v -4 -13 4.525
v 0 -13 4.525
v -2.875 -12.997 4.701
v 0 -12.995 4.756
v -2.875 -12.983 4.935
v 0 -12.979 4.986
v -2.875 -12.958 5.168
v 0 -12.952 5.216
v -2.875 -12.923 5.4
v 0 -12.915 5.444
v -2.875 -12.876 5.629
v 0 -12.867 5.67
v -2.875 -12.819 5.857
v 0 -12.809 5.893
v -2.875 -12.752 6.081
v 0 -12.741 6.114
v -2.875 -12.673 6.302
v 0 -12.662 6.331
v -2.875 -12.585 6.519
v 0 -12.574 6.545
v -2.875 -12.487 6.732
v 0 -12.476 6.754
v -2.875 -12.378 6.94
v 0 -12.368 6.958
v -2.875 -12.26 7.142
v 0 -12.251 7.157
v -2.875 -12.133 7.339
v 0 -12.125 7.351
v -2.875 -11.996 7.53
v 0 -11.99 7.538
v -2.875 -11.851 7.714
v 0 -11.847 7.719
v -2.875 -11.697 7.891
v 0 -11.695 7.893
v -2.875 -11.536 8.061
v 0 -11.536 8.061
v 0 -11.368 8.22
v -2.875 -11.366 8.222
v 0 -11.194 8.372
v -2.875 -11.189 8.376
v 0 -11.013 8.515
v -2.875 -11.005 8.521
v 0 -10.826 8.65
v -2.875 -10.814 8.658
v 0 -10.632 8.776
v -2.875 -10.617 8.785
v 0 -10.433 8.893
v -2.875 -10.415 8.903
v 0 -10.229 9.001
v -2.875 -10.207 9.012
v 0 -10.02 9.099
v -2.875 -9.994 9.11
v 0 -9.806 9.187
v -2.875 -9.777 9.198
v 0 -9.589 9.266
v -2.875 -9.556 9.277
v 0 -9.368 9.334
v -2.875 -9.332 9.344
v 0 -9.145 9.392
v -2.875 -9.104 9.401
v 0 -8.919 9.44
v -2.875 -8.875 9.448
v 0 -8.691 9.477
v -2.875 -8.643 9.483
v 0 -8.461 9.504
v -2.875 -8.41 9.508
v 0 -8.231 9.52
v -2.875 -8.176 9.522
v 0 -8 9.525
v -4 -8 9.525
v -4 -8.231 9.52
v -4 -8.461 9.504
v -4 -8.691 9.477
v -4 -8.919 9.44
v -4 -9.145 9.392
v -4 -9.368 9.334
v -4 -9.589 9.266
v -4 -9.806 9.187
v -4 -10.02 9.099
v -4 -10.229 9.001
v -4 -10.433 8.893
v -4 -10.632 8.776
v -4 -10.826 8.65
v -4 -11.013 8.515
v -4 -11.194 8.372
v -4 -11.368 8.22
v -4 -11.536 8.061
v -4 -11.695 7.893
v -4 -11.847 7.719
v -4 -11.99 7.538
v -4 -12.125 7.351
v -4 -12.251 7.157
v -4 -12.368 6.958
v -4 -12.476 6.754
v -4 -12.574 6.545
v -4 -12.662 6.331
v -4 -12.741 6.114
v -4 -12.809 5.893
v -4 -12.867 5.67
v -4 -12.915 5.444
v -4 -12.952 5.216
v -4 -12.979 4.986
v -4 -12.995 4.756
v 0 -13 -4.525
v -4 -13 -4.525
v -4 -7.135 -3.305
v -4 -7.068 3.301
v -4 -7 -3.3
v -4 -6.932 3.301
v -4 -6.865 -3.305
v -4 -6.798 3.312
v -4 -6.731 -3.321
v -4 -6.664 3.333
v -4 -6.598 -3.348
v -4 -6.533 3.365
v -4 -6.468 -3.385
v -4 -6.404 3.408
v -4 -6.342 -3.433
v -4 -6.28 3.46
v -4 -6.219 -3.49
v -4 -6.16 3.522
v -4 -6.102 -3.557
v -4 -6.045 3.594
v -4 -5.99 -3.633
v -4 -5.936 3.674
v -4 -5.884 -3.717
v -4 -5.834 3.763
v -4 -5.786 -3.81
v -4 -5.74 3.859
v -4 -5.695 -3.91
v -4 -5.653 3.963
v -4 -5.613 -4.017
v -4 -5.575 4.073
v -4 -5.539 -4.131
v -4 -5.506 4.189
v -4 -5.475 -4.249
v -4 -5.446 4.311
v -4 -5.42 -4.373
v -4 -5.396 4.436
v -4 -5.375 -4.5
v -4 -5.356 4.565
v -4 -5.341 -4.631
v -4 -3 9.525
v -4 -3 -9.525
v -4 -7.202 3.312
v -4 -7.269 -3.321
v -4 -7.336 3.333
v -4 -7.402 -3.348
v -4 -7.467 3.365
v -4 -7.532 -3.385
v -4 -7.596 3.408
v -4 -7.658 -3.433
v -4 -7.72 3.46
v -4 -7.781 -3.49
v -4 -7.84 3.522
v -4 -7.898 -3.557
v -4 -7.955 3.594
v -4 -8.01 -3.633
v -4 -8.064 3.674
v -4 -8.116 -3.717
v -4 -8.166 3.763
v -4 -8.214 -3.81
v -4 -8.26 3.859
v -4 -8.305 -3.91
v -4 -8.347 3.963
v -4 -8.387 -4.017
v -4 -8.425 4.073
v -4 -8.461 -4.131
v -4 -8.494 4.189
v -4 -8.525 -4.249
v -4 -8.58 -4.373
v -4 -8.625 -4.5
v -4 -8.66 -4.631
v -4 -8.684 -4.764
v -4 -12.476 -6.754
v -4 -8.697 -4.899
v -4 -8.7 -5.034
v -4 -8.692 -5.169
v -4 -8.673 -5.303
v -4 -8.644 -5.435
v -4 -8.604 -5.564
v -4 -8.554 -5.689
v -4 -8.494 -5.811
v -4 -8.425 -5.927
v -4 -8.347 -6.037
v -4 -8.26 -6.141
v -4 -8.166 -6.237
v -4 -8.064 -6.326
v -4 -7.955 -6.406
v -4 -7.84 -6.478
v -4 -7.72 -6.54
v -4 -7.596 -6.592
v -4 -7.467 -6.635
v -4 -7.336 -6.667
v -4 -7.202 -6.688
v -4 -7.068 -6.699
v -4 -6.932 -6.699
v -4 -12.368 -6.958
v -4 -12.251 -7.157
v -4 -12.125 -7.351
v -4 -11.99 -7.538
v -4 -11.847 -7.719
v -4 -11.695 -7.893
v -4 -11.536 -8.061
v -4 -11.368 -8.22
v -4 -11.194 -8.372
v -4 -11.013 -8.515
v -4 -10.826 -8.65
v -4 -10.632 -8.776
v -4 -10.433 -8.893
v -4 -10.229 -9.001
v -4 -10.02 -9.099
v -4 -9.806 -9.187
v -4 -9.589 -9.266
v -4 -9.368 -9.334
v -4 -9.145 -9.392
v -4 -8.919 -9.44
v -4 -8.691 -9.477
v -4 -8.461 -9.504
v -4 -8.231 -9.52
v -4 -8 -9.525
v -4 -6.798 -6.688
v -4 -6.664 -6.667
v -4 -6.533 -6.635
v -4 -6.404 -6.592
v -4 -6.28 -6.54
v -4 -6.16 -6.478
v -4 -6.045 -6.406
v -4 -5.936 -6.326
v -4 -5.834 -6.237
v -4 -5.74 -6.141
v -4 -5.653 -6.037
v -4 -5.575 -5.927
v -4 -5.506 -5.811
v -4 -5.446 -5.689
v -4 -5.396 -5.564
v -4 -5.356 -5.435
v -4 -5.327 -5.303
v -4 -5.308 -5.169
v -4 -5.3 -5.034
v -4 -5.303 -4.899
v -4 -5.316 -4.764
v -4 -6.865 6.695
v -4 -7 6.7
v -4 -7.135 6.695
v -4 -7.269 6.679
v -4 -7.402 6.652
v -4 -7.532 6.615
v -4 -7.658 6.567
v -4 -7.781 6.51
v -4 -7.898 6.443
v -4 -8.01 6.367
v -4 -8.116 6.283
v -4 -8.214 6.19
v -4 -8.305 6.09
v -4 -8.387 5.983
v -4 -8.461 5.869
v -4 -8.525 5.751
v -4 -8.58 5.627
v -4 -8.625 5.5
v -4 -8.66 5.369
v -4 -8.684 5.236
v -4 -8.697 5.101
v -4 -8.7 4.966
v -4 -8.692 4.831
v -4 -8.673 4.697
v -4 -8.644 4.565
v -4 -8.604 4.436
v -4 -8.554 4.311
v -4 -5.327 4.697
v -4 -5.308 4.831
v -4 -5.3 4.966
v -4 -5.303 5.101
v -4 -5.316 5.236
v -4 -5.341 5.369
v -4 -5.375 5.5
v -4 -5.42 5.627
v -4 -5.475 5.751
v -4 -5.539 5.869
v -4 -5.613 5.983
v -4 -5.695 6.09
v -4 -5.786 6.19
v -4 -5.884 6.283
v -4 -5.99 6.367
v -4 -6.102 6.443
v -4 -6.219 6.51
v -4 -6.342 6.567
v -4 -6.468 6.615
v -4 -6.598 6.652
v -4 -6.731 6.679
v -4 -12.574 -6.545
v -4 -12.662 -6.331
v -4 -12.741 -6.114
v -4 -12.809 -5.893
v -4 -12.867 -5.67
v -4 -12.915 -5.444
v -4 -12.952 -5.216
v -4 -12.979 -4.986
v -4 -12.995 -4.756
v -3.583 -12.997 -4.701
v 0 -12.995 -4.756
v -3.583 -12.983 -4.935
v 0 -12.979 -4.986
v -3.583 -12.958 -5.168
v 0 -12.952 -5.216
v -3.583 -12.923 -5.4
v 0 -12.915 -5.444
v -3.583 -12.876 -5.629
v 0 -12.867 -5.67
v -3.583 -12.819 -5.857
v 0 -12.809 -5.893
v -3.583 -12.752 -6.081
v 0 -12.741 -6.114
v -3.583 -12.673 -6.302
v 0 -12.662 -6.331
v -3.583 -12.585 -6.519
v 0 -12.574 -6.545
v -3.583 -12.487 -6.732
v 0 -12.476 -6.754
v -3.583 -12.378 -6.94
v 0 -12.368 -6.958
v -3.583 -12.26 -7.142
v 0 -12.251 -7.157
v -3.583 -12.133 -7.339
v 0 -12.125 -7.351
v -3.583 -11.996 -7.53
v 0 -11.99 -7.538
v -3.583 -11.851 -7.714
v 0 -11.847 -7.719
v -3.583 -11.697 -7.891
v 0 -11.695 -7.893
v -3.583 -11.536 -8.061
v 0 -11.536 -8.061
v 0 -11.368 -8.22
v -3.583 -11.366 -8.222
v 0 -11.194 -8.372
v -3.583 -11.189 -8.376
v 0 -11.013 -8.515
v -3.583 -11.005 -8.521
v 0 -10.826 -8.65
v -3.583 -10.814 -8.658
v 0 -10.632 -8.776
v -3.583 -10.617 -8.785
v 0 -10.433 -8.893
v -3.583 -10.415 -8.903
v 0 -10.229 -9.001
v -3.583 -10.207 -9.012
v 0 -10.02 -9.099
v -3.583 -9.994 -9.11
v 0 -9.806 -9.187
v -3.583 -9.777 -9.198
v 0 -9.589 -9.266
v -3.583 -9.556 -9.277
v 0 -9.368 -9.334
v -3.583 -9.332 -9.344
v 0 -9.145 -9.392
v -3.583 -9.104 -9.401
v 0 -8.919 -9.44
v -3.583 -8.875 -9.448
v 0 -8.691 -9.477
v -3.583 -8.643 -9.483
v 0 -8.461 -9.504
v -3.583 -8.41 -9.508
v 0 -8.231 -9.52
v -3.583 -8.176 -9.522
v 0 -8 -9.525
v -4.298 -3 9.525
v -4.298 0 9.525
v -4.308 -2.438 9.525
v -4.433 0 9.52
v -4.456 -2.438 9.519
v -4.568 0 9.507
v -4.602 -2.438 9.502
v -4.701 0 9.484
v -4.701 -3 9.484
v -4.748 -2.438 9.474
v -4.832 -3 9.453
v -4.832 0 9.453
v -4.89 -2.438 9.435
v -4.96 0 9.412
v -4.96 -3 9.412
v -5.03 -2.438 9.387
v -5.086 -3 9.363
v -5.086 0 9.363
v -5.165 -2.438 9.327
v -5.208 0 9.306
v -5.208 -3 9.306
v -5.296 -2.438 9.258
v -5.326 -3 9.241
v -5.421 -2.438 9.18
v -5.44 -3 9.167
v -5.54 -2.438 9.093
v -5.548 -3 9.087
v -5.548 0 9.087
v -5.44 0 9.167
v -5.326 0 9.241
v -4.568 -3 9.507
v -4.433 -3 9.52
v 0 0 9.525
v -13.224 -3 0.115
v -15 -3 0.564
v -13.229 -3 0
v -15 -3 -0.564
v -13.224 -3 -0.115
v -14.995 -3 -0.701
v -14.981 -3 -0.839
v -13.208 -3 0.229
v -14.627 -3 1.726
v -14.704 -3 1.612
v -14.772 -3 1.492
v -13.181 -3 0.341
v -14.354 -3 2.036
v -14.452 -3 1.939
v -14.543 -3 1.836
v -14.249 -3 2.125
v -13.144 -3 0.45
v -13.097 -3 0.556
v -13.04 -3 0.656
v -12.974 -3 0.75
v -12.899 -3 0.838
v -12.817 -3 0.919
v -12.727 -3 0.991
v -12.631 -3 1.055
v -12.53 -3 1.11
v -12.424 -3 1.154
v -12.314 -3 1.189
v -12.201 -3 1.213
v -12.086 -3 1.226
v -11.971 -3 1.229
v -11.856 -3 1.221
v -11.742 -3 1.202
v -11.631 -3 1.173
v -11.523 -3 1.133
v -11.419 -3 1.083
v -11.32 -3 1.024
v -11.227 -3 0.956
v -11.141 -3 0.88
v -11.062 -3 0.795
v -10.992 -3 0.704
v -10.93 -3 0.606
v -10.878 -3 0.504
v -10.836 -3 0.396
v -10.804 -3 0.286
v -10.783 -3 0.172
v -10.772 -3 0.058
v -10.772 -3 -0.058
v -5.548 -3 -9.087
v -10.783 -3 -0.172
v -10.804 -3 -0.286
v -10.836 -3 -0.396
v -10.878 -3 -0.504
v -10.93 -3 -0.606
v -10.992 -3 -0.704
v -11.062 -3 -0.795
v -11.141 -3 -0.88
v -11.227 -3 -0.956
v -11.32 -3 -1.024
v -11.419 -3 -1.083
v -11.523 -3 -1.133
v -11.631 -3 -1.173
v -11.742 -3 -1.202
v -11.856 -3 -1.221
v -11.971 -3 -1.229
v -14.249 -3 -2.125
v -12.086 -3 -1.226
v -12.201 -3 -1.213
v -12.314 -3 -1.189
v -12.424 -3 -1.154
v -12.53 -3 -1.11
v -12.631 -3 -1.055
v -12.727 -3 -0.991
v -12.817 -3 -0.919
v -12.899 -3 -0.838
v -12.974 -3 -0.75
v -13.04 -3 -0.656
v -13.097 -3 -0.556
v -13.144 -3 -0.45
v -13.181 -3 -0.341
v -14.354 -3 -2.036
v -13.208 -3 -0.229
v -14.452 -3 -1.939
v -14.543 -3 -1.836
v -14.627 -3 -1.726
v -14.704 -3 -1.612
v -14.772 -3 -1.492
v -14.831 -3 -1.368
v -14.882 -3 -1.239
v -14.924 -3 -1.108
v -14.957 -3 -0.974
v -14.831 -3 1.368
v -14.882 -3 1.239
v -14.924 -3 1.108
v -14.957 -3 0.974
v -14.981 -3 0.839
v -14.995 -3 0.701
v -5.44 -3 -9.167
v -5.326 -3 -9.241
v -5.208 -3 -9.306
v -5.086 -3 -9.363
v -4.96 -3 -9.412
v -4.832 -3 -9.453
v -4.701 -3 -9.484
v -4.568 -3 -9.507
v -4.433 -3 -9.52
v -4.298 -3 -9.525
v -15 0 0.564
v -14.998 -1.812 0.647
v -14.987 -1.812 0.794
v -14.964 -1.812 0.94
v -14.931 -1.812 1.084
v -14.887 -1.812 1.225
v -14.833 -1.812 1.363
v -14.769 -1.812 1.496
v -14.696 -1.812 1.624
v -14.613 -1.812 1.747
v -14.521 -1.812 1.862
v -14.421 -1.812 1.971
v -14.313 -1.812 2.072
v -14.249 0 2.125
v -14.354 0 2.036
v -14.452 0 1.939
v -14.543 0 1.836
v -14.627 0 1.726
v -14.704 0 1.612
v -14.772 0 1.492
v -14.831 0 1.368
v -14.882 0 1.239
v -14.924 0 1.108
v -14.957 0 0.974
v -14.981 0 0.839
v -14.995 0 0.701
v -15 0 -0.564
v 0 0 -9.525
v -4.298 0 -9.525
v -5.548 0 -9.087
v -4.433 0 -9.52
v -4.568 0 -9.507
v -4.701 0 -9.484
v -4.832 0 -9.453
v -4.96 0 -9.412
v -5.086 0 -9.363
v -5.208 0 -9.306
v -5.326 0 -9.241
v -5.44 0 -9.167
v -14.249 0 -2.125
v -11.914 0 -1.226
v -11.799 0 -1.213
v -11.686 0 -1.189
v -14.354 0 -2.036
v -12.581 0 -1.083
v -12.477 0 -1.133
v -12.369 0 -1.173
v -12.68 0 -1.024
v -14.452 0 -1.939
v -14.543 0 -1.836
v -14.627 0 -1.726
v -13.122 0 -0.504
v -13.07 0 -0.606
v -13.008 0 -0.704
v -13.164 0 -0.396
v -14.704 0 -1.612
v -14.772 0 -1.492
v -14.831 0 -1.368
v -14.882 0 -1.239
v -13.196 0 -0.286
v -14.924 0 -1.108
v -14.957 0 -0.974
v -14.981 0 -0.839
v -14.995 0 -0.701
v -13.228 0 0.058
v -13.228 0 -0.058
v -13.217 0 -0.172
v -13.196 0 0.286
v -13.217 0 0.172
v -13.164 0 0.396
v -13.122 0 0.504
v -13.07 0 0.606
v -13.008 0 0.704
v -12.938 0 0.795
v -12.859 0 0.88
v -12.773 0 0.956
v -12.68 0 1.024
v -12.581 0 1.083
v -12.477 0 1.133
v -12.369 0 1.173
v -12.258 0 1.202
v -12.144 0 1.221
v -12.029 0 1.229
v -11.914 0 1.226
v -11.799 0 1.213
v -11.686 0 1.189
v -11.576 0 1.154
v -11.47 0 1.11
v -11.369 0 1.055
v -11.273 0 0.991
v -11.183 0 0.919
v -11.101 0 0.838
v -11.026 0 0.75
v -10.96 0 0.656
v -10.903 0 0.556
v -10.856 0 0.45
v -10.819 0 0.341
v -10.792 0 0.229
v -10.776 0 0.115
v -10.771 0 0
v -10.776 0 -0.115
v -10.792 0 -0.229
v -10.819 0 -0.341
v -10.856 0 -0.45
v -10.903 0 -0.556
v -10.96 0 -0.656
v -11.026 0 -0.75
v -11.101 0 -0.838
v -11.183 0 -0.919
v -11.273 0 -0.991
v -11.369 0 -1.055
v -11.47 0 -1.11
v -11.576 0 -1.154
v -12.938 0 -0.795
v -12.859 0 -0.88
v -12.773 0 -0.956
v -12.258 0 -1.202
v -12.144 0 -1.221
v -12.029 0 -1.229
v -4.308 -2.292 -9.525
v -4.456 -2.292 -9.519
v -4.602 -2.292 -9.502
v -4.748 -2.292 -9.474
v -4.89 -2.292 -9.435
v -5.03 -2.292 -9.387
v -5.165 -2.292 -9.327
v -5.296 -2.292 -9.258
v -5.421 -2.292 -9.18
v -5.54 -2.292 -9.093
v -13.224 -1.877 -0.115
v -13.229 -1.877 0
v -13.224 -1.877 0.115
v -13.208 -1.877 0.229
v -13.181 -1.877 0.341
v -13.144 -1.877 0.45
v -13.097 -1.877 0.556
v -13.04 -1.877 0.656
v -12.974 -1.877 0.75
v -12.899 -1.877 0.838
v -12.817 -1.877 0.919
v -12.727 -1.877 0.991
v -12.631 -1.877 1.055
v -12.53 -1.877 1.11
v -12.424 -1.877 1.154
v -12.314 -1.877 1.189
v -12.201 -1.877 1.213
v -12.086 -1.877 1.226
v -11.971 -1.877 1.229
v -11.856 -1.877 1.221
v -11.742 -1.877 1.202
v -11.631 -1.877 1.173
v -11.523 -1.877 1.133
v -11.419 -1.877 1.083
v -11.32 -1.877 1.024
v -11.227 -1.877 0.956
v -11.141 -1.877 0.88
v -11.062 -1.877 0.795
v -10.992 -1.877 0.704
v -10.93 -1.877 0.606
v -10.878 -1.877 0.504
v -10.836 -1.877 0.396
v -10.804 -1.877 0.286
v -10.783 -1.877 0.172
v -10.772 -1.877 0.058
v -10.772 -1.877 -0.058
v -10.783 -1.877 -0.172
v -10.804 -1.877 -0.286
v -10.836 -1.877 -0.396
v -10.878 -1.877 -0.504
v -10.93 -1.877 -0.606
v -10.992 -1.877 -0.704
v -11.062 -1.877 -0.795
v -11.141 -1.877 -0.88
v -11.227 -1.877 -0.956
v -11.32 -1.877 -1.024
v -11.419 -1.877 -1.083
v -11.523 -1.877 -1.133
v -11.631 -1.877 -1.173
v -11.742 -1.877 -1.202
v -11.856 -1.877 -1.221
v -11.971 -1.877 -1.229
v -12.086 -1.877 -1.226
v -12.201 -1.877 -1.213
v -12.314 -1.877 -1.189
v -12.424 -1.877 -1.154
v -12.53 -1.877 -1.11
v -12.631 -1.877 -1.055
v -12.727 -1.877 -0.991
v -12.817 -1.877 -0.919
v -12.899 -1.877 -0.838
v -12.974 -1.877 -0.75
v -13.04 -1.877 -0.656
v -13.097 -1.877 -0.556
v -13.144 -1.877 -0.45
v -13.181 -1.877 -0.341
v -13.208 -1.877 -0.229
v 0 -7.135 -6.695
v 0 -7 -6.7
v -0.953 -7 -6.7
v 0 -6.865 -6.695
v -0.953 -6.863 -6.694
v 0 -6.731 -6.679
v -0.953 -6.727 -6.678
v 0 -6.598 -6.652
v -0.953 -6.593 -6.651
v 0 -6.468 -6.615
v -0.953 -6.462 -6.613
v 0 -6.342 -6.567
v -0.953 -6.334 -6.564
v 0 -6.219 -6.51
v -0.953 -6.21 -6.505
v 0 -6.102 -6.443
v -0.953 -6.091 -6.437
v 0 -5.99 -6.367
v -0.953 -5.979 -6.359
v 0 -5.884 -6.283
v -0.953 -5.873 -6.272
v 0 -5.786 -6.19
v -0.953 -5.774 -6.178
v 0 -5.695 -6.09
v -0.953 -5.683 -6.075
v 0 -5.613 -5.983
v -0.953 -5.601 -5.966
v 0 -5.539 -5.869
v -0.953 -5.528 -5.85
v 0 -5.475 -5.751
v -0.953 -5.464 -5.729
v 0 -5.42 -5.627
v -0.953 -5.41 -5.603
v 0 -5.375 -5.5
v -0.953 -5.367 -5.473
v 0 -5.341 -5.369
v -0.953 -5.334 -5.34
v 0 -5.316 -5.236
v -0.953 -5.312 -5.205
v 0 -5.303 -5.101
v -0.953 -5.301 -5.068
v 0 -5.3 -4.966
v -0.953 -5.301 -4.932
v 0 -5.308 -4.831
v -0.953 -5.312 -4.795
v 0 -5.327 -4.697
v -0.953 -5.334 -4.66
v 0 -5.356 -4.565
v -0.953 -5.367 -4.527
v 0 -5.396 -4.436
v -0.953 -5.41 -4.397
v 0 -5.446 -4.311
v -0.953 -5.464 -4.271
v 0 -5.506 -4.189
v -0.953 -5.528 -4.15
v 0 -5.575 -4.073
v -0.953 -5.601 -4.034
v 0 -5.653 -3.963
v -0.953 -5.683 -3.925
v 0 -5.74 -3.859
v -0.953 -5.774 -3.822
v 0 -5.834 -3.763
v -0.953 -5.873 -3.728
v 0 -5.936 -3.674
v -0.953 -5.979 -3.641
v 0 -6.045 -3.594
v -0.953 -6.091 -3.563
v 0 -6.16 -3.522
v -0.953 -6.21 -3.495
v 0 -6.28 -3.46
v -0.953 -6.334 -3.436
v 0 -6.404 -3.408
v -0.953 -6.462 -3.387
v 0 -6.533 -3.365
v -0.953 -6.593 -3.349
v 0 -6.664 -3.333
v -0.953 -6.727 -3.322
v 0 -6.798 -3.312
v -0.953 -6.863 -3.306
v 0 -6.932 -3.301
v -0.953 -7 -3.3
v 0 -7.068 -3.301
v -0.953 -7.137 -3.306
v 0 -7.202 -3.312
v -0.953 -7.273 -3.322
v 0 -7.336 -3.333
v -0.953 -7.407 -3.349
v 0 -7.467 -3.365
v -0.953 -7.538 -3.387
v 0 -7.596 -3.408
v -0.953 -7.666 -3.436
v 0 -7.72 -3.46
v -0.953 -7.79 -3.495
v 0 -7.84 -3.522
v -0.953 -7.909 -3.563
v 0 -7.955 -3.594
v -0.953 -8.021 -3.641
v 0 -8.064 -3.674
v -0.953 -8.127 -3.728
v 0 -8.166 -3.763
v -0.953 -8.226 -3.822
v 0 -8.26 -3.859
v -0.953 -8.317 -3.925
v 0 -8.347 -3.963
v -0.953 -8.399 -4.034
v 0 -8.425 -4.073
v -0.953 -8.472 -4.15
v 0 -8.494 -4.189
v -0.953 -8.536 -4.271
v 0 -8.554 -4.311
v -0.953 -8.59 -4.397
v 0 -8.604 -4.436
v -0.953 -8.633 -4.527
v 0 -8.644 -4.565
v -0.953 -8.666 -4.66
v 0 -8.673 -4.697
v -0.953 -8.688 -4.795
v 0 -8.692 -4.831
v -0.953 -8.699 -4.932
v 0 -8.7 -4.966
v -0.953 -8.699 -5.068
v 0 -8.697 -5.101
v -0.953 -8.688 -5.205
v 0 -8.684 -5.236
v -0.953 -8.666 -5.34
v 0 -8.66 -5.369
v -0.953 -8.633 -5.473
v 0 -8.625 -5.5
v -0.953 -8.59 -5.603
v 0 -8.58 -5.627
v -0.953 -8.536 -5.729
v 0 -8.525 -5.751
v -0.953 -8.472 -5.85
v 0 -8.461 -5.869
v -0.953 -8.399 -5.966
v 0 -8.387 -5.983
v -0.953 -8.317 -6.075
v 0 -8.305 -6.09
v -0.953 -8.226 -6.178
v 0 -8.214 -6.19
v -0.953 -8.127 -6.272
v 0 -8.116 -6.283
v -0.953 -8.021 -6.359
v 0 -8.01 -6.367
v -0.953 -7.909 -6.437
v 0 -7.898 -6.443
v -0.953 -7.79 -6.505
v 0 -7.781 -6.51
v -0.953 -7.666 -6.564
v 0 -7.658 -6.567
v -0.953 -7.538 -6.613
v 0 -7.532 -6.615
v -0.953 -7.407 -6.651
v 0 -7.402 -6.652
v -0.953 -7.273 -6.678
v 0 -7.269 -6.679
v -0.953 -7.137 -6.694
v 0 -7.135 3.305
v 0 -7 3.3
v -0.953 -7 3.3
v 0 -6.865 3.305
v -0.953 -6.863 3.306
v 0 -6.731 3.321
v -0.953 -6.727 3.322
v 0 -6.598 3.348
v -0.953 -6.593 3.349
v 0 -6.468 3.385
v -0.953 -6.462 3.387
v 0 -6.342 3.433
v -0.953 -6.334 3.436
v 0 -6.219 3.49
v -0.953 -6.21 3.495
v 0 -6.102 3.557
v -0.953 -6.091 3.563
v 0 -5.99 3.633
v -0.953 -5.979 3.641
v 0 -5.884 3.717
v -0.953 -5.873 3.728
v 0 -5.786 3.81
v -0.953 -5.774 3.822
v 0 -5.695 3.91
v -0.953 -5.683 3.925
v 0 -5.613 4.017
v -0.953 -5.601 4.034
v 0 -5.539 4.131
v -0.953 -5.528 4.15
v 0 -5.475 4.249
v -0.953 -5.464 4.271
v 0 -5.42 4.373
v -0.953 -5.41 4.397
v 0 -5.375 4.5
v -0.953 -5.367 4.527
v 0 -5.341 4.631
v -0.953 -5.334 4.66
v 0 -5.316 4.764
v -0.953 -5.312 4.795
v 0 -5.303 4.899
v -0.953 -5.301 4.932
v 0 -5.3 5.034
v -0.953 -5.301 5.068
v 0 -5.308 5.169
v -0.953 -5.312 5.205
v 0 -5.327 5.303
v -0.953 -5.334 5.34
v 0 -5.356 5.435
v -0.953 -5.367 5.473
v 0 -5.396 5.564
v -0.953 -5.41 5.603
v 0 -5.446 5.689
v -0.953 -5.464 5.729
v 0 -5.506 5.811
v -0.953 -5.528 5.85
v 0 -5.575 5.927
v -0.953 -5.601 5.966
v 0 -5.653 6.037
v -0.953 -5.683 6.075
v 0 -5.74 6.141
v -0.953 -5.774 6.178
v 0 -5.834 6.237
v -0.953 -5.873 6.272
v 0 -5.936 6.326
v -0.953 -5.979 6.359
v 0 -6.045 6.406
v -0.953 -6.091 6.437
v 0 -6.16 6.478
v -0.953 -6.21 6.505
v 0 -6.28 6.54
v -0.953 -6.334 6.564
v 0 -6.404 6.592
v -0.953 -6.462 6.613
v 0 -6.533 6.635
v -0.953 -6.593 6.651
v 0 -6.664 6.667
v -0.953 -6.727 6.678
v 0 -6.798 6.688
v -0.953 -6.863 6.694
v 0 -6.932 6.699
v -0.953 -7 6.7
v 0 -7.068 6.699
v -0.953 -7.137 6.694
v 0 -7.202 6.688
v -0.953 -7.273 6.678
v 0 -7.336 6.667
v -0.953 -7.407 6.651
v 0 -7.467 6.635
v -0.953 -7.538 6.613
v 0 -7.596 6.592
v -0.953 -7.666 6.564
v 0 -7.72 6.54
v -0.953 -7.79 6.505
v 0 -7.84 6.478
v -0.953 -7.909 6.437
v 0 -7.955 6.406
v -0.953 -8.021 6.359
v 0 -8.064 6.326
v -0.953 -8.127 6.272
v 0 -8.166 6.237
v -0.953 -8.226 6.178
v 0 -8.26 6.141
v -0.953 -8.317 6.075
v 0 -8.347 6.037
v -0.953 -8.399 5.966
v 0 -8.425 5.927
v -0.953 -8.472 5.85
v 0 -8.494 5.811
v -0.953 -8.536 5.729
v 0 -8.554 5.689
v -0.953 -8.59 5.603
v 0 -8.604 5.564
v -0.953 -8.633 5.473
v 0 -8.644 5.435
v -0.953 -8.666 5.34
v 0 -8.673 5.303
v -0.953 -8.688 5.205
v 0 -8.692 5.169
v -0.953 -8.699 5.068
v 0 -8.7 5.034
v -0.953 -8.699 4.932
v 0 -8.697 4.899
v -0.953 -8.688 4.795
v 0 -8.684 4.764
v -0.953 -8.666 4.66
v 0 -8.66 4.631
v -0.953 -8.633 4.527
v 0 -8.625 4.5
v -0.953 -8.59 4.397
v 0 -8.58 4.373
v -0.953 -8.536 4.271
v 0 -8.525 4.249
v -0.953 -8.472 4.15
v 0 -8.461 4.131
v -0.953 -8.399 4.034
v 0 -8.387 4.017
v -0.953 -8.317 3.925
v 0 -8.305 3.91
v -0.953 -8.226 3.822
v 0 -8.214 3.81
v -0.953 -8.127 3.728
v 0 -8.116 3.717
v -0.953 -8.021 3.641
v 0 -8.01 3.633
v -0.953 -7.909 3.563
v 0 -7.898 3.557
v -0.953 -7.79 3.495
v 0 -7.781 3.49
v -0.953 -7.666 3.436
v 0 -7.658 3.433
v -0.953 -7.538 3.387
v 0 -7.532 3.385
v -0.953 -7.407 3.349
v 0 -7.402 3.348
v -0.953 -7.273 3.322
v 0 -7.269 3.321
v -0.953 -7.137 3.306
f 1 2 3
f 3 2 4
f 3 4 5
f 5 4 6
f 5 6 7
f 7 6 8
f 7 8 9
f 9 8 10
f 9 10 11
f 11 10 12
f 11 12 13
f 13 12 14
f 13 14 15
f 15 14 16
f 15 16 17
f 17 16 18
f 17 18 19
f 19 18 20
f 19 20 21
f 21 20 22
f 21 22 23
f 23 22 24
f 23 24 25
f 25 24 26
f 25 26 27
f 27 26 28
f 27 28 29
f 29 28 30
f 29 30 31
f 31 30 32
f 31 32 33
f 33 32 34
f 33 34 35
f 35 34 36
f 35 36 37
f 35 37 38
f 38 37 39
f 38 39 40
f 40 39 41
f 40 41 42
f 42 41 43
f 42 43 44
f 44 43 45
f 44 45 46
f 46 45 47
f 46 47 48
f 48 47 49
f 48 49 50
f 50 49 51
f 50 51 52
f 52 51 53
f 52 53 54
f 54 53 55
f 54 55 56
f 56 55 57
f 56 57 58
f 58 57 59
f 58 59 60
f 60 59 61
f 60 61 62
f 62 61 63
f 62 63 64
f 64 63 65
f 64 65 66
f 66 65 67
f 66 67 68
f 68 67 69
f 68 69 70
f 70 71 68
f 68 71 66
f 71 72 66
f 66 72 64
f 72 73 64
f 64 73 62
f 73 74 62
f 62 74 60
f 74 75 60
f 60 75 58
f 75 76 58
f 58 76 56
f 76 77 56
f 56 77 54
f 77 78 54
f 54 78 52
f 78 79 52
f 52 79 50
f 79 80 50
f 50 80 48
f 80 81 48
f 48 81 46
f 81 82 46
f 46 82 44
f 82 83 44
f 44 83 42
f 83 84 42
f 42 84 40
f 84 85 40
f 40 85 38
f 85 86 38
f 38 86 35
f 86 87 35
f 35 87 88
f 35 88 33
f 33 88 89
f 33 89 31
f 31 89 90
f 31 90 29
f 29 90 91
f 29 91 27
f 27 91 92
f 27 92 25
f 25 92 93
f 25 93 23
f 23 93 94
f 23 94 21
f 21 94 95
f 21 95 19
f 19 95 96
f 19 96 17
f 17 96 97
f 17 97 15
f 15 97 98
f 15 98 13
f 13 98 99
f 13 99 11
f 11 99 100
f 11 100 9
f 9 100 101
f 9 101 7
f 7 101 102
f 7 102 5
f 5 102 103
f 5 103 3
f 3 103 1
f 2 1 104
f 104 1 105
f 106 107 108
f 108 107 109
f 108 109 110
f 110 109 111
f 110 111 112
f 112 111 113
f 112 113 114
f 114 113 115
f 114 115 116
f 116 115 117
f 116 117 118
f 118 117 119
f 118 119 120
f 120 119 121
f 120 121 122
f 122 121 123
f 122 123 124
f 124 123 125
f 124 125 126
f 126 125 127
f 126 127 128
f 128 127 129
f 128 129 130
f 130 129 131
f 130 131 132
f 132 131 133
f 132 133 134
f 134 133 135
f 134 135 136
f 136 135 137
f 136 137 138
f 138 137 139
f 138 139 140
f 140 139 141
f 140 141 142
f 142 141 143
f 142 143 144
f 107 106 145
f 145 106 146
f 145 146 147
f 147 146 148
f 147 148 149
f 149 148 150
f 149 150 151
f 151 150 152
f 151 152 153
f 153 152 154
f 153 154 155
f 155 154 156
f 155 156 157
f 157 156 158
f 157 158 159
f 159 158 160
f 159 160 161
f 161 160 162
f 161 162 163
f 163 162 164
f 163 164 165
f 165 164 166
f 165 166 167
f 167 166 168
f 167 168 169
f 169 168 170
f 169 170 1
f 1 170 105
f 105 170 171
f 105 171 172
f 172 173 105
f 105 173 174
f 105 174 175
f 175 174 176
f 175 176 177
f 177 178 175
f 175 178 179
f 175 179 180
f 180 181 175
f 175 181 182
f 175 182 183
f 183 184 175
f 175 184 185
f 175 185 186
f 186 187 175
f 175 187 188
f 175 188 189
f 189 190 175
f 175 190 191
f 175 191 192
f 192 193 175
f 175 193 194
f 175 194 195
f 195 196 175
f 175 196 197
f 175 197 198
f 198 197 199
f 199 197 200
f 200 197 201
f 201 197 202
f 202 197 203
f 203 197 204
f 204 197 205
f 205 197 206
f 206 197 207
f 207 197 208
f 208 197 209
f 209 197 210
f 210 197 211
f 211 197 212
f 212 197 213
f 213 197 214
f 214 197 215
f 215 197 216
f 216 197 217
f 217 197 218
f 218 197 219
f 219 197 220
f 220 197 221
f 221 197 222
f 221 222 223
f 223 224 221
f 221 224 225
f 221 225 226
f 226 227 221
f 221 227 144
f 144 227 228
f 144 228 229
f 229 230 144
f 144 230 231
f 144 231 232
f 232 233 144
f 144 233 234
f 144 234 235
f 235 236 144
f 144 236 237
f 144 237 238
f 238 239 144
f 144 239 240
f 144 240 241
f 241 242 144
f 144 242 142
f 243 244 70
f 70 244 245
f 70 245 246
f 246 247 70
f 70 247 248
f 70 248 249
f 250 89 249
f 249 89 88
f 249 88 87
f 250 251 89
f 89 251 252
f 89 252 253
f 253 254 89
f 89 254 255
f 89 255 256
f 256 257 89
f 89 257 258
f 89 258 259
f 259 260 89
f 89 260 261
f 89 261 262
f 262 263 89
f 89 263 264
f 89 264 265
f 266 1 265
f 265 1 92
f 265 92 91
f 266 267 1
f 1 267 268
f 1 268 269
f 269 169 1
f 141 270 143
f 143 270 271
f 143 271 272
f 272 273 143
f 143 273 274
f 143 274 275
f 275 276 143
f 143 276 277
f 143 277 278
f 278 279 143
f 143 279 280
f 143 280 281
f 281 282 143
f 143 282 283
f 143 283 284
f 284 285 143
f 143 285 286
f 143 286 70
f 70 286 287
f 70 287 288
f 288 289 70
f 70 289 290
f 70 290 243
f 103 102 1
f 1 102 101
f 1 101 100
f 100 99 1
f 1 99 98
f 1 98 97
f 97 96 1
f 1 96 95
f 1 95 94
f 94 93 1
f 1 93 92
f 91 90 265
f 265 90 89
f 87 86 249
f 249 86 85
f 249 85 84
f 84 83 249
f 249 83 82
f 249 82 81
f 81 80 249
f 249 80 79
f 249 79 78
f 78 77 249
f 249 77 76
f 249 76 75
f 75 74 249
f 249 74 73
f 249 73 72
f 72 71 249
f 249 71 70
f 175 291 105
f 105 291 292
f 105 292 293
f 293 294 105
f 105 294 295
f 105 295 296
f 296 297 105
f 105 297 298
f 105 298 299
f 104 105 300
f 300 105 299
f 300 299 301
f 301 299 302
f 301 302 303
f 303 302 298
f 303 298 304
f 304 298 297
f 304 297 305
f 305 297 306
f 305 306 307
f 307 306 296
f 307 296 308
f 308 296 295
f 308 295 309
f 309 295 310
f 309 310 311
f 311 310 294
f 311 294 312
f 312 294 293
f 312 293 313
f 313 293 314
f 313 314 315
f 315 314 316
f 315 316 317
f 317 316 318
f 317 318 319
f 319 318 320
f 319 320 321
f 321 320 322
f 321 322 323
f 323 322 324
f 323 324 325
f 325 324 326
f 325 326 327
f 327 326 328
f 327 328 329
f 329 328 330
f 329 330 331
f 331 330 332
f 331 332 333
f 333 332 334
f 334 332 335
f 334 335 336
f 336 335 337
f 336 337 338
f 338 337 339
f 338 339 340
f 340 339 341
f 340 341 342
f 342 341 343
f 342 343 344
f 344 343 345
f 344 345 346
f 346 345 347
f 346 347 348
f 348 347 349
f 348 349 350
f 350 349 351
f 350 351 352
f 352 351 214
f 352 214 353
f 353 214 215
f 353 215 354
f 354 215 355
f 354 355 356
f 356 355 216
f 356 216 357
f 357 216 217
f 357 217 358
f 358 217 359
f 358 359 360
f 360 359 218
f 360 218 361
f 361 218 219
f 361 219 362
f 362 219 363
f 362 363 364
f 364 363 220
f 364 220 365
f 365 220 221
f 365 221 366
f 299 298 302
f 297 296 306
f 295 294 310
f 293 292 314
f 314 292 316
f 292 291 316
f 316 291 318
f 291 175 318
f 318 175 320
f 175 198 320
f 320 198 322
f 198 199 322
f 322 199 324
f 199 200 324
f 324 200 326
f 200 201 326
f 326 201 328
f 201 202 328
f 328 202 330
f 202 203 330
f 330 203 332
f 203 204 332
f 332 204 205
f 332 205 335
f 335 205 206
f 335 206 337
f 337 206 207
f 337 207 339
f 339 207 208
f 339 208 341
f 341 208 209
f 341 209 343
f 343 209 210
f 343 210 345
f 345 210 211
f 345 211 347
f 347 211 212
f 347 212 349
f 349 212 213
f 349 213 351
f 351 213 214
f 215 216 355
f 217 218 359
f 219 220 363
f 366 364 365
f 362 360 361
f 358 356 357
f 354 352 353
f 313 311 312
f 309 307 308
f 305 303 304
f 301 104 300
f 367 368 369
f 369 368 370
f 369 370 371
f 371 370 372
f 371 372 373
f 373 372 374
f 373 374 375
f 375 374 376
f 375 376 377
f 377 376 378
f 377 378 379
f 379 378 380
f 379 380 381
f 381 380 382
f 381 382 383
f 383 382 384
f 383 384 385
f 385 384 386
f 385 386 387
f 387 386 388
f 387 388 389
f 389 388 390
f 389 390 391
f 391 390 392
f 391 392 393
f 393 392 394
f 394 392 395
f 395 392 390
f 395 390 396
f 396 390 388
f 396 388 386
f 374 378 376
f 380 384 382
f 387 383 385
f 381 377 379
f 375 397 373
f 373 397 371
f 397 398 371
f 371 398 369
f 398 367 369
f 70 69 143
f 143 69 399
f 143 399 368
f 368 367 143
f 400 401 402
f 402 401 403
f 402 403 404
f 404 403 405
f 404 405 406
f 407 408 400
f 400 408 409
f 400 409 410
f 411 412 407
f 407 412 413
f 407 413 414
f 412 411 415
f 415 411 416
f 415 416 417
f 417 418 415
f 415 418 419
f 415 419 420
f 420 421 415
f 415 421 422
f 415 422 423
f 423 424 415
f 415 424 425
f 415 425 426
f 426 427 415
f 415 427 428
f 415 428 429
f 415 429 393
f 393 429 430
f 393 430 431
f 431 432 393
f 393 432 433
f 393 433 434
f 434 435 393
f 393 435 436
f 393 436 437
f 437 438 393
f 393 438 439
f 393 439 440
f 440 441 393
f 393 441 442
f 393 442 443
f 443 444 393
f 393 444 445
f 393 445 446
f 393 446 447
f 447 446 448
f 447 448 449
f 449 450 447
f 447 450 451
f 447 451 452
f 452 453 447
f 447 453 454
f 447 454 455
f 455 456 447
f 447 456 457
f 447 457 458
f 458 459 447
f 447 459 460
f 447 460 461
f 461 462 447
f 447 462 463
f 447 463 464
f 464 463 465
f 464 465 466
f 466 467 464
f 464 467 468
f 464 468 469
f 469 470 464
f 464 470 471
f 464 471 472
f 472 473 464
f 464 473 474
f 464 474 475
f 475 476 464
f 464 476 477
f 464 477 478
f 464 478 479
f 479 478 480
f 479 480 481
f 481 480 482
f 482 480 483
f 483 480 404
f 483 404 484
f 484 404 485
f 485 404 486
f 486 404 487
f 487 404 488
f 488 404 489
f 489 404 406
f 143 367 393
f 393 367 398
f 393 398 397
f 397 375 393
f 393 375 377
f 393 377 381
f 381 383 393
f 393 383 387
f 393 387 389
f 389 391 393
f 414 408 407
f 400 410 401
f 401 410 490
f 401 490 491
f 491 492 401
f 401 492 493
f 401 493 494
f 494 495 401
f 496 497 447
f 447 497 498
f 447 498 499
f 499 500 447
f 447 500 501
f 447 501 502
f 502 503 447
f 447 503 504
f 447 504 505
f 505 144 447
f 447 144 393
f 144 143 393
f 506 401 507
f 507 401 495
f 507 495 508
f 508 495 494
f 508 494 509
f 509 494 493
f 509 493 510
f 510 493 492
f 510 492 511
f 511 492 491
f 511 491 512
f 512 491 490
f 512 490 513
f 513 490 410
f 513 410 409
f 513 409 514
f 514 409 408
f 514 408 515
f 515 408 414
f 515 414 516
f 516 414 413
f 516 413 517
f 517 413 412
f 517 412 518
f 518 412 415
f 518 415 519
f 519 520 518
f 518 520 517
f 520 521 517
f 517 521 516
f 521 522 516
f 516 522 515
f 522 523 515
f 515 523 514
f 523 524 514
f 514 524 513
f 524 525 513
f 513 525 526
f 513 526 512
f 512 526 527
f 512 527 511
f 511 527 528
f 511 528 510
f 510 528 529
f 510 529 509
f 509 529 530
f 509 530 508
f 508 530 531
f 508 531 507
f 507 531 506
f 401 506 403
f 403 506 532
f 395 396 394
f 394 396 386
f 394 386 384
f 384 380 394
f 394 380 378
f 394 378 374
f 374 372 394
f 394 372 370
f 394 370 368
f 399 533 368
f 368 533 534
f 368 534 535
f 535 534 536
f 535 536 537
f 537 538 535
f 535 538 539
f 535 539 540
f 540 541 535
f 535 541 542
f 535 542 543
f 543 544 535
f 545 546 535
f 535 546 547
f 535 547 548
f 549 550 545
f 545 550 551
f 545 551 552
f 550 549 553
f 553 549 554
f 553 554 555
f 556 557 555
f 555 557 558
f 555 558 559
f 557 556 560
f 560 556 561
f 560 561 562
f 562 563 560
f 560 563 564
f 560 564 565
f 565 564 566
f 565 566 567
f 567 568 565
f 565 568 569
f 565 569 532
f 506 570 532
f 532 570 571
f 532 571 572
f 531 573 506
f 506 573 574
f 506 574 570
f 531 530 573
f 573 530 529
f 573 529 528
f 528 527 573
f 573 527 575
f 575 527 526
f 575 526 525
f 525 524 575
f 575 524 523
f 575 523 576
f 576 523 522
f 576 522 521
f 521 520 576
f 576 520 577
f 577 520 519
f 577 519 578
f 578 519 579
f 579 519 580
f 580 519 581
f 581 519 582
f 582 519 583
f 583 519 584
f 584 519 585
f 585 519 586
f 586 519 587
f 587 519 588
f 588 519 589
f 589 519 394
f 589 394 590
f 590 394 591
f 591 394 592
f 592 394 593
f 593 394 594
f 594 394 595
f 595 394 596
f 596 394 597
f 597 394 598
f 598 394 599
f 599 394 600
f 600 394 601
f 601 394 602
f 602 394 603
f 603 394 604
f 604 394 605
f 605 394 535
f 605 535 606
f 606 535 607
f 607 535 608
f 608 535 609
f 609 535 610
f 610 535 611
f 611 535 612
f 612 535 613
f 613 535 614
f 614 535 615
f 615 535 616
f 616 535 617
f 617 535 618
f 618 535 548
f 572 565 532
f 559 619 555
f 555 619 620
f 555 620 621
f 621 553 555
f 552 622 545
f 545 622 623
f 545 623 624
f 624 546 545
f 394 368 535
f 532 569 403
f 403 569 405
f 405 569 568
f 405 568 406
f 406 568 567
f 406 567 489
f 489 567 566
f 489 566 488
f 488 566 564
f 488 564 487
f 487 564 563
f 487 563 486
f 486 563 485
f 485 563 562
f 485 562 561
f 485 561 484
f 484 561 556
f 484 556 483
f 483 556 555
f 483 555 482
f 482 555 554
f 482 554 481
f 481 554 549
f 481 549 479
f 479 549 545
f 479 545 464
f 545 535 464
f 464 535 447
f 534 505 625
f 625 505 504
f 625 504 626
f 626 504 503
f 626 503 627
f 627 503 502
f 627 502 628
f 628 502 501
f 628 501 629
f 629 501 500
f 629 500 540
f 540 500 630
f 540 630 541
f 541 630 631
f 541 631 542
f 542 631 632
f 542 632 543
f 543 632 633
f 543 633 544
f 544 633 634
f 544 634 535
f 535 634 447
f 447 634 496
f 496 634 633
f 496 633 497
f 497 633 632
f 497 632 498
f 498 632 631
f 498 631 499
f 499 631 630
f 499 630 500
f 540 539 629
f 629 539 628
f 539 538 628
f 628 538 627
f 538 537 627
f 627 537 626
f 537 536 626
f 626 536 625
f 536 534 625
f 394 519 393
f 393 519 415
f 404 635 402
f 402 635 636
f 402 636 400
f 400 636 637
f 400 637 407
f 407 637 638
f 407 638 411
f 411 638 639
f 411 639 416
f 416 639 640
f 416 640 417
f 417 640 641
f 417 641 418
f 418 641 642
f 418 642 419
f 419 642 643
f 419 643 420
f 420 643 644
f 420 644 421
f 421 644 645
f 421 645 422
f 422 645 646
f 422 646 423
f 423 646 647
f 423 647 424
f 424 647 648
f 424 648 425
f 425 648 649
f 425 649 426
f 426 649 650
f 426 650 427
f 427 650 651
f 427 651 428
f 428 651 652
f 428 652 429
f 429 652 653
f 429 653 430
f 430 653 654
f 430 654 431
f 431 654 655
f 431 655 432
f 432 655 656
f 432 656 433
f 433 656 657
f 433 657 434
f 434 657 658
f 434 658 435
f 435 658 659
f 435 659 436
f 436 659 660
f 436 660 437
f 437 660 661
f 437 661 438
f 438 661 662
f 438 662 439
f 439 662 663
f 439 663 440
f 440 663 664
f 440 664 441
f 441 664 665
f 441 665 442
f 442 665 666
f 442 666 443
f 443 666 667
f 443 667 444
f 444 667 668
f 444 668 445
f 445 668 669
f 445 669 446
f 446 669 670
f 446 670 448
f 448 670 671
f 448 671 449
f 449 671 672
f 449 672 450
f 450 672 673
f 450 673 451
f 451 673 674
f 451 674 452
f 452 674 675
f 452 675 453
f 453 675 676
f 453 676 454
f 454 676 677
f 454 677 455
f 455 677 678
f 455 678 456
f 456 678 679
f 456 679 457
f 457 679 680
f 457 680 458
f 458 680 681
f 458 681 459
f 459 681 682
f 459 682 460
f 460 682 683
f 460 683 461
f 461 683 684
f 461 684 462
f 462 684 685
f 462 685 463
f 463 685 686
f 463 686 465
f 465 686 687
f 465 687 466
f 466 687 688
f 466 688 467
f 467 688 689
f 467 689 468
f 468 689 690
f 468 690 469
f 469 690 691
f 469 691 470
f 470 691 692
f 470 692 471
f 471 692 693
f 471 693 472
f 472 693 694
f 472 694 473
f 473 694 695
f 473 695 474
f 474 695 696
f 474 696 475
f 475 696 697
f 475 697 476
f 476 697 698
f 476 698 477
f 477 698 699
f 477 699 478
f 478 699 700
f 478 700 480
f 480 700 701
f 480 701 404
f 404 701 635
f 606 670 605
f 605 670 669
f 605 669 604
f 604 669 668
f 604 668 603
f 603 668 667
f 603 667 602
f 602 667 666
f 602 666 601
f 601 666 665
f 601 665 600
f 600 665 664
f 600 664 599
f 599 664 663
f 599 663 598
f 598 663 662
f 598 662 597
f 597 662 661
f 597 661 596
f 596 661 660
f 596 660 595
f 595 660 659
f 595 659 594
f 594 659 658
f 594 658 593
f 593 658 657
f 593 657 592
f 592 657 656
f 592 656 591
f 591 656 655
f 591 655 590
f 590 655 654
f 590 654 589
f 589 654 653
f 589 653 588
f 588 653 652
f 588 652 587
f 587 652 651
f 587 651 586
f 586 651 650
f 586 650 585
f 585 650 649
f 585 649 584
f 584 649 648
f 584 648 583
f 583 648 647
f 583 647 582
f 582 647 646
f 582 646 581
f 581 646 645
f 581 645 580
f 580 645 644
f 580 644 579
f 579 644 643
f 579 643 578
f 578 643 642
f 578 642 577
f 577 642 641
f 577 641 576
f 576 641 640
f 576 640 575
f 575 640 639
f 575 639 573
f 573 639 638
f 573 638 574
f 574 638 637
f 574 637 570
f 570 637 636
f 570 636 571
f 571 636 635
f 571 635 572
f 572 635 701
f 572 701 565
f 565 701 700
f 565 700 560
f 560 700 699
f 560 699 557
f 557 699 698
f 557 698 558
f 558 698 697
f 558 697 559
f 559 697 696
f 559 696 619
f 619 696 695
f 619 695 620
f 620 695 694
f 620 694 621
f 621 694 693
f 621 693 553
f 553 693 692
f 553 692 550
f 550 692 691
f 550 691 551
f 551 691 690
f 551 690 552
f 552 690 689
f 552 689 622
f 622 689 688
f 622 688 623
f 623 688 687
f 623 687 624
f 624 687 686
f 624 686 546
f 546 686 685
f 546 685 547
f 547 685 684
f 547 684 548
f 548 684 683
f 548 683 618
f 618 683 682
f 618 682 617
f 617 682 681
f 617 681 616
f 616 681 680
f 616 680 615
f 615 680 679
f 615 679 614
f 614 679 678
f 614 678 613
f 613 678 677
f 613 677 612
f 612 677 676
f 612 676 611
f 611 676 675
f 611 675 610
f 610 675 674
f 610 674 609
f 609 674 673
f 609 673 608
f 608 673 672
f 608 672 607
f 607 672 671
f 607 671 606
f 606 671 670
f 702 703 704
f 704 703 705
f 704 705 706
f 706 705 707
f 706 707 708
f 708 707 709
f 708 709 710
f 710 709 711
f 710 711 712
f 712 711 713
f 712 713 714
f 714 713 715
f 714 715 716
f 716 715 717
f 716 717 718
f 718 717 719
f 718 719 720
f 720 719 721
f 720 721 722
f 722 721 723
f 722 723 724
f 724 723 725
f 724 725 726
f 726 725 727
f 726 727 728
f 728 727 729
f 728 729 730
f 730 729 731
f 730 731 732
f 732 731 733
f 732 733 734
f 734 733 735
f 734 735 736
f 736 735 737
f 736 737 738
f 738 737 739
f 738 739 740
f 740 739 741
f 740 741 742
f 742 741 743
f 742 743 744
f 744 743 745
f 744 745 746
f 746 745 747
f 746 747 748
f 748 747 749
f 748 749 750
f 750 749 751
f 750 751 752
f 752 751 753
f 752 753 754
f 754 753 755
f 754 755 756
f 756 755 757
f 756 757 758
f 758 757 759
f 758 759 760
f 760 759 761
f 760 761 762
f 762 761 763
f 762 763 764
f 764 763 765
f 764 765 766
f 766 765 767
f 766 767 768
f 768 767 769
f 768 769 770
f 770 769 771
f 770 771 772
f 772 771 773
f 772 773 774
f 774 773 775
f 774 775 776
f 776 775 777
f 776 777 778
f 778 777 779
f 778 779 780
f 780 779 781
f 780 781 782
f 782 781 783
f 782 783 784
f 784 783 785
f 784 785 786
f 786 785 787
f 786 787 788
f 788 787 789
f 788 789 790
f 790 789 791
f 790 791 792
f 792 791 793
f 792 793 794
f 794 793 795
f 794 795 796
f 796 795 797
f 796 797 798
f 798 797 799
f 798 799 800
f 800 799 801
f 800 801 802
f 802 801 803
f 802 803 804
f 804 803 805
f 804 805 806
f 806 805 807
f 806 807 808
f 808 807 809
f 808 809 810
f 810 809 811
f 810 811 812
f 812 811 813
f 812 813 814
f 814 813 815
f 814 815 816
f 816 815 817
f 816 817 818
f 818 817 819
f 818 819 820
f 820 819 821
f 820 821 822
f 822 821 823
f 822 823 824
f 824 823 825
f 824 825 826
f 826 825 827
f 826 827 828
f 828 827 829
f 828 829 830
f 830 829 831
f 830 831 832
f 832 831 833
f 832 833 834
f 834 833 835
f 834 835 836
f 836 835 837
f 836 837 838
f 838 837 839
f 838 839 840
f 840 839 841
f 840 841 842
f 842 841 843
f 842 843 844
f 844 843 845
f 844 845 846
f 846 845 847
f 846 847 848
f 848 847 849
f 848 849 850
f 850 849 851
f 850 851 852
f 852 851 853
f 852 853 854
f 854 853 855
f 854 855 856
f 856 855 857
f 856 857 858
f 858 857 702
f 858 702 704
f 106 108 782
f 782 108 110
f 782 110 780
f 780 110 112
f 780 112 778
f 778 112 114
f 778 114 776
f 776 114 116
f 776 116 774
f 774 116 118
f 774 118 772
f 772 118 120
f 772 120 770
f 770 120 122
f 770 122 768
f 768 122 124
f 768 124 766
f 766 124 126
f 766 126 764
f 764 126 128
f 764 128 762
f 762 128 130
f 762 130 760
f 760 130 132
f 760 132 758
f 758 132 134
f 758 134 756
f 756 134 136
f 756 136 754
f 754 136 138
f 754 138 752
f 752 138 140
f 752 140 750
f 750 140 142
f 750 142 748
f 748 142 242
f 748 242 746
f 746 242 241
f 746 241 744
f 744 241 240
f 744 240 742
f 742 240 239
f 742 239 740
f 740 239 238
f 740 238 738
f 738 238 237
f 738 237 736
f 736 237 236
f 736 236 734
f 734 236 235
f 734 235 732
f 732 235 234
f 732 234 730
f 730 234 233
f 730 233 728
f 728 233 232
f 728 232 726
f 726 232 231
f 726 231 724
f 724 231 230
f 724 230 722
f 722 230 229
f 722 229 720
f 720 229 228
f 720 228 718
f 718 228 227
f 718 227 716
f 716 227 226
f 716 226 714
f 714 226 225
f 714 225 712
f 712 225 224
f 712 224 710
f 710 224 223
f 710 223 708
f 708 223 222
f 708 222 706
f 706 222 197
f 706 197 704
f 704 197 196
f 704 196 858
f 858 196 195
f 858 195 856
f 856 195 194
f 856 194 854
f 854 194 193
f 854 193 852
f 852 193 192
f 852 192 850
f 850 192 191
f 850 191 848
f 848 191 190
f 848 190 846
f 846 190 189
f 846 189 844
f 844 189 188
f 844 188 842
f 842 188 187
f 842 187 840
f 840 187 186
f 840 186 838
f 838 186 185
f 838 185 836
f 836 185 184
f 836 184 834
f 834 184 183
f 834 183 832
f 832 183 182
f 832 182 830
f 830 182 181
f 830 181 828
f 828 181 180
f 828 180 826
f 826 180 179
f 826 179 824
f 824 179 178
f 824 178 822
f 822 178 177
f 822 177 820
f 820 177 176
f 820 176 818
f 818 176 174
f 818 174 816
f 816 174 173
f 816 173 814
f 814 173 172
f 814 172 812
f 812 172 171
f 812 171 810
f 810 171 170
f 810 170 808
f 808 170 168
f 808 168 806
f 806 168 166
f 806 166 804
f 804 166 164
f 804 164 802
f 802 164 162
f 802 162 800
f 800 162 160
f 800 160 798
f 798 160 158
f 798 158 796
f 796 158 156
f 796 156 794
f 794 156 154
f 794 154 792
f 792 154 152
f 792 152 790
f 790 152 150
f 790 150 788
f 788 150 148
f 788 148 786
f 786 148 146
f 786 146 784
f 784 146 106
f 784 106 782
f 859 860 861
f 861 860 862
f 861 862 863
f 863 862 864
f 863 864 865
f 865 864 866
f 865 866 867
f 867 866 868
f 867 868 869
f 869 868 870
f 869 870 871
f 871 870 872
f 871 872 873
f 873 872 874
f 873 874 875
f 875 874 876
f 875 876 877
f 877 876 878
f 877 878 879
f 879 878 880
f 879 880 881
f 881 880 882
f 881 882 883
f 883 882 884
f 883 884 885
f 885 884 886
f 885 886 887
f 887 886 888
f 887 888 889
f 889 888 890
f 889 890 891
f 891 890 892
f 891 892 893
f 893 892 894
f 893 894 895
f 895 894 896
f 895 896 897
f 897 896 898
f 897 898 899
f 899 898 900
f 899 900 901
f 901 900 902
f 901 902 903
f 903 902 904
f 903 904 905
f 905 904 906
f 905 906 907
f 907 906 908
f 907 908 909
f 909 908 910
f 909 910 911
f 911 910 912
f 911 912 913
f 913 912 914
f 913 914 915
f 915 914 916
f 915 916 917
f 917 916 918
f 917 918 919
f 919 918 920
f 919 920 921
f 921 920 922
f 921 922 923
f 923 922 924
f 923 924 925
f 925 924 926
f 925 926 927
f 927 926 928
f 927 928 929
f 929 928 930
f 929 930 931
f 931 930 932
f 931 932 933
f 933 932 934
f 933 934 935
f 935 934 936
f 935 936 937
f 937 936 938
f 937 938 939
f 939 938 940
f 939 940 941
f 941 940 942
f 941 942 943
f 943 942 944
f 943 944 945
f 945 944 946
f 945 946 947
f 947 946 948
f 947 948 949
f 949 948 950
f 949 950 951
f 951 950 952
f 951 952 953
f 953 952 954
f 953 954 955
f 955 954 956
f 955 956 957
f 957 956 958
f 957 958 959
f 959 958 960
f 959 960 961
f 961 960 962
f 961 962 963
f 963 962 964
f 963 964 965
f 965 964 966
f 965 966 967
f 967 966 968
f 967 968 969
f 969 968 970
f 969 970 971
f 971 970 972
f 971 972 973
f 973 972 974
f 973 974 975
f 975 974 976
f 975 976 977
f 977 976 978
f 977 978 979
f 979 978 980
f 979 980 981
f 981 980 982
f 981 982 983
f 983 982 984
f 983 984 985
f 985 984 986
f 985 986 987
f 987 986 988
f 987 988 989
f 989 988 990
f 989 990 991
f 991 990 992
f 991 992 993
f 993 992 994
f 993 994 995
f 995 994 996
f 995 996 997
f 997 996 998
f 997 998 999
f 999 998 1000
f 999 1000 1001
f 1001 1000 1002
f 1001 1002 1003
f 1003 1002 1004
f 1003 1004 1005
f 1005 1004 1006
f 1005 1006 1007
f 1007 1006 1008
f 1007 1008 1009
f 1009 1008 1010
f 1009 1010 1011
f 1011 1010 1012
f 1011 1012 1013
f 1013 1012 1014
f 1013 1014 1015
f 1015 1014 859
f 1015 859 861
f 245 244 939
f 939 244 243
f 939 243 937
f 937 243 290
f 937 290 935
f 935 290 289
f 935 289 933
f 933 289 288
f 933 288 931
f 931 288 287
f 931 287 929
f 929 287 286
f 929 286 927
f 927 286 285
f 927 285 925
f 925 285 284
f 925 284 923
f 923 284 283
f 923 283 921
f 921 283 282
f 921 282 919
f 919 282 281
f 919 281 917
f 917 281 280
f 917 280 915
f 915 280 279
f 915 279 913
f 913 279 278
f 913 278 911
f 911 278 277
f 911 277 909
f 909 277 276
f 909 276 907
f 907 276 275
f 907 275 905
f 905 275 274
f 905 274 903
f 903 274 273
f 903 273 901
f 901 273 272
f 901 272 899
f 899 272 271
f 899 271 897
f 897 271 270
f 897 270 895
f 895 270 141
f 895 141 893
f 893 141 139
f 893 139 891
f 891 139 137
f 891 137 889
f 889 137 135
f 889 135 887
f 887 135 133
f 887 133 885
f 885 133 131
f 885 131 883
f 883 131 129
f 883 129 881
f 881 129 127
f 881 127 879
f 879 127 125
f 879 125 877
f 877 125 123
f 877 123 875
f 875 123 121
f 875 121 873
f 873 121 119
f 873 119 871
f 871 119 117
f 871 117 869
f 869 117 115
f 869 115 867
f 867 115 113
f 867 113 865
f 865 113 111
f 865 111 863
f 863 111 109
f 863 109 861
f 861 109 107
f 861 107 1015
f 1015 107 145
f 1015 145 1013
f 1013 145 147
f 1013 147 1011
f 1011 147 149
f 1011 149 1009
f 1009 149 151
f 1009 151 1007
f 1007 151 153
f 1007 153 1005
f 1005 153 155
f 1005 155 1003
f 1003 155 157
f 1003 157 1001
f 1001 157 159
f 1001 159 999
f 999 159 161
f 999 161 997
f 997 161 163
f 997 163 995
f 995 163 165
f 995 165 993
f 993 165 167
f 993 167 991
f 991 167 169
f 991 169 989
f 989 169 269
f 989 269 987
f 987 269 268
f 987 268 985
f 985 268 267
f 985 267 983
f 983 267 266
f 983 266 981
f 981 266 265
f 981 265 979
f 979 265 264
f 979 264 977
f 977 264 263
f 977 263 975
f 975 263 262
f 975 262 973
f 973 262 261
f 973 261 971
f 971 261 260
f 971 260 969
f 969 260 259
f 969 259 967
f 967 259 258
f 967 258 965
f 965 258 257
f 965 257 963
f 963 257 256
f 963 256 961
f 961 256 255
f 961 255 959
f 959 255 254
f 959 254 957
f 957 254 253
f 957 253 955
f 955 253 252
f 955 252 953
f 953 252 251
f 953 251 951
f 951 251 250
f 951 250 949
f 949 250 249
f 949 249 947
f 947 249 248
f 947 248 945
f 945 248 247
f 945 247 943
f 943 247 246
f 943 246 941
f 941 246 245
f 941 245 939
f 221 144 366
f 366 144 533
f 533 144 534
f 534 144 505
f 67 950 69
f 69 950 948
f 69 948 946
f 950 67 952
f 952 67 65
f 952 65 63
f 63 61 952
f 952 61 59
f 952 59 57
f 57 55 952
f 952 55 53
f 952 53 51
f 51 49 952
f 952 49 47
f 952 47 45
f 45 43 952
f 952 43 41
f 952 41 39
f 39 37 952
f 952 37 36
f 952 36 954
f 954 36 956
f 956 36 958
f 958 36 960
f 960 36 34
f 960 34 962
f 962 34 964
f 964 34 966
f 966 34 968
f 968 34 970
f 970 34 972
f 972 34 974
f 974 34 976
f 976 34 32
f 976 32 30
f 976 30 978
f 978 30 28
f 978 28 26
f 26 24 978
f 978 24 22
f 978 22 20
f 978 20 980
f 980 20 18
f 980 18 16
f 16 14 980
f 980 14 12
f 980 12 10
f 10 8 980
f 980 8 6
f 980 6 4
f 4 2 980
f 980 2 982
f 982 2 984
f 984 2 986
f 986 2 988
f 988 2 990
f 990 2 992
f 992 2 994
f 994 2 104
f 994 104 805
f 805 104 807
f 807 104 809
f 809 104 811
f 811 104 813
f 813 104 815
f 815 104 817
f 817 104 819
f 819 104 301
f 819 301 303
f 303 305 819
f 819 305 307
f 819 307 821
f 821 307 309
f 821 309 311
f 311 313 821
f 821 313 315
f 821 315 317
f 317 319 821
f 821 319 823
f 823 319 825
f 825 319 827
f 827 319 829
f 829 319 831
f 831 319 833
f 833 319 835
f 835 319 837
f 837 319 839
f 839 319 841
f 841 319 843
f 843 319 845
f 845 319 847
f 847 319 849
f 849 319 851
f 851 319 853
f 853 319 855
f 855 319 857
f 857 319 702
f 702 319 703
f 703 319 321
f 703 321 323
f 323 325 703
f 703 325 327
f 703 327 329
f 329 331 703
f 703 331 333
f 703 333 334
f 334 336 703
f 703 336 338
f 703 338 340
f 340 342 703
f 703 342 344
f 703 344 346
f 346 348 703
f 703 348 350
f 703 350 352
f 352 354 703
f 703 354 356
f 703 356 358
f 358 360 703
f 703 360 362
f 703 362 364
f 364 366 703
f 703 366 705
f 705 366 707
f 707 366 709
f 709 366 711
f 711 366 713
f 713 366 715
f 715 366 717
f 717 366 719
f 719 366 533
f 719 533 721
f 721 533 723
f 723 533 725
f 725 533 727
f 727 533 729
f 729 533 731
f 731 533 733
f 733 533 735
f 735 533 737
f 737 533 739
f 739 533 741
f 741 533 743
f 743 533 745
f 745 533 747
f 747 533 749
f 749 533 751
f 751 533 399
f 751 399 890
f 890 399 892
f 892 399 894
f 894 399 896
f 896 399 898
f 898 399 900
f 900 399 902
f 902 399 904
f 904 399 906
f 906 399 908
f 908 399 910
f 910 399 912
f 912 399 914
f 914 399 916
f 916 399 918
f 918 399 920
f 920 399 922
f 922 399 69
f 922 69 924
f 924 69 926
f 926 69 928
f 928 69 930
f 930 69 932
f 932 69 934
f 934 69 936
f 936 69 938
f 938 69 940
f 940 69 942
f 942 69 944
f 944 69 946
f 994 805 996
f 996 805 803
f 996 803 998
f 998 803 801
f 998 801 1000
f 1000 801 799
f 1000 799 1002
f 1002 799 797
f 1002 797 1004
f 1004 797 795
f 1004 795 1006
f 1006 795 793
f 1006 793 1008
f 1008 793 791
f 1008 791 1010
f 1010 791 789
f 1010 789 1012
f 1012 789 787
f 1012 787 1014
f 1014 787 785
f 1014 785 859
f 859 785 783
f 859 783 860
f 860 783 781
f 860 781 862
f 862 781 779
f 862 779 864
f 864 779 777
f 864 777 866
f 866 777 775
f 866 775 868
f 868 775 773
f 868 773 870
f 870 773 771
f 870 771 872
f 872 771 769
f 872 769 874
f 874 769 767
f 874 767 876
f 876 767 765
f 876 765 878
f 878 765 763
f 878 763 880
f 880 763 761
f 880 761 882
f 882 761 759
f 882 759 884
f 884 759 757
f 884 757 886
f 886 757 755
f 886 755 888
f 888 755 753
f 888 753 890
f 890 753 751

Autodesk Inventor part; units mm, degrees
ref_plane "YZ Plane" through (0, 0, 0) normal (1, 0, 0) x (0, 1, 0)
ref_plane "XZ Plane" through (0, 0, 0) normal (0, 1, 0) x (-1, 0, 0)
ref_plane "XY Plane" through (0, 0, 0) normal (0, 0, 1) x (1, 0, 0)
sketch "Sketch1" plane through (0, 0, 0) normal (0, 0, 1) x (1, 0, 0)
  line L0 (-4, -13) -> (0, -13)
  line L1 (0, -13) -> (0, 0)
  line L2 (0, 0) -> (-15, 0)
  line L3 (-15, 0) -> (-15, -3)
  line L4 (-15, -3) -> (-4, -3)
  line L5 (-4, -3) -> (-4, -13)
  dimension "d0" = 3
  dimension "d1" = 4
  dimension "d2" = 10
  dimension "d3" = 15
extrude "Extrusion1" add sketch "Sketch1" along normal mid plane 19.05
sketch "Sketch2" plane through (-4, -13, 9.525) normal (-1, 0, 0) x (0, 0, 1)
  line L0 (-19.05, 0) -> (0, 0) projected
  line L1 (0, 10) -> (0, 0) projected
  line L2 (-19.05, 10) -> (0, 10) projected
  line L3 (-19.05, 0) -> (-19.05, 10) projected
  line L4 (-19.05, 0) -> (-19.05, 10) projected
  line L5 (-19.05, 13) -> (0, 13) projected
  line L6 (-19.05, 0) -> (0, 0) projected
  point P0 (-9.525, 13)
  point P1 (-14.525, 6)
  point P2 (-4.525, 6)
  point P3 (-19.05, 5)
  point P4 (-9.525, 13)
  point P5 (-9.525, 0)
  dimension "d6" = 10
  dimension "d31" = 7
  dimension "d32" = 5
hole "Hole1" at (-4, -7, -5) at (-4, -7, 5) direction (1, 0, 0) diameter 3.4 depth 8.7884 clearance for "Socket Head Cap Screw" size "M3" standard "Ansi Metric M Profile"
sketch "Sketch3" plane through (-15, 0, 9.525) normal (0, 1, 0) x (1, 0, 0)
  line L0 (15, 19.05) -> (15, 0) projected
  point P0 (15, 9.525)
  point P1 (3, 9.525)
  point P2 (15, 9.525)
  dimension "d15" = 12
hole "Hole2" at (-12, 0, 0) direction (0, -1, 0) diameter 2.459 depth 8.8 thread size "M3x0.5" class "6H" standard "ANSI Metric M Profile"
chamfer "Chamfer1" distance 10 distance2 8 1 edges at (-15, -1.5, 9.525) measured on face at (-1.3333, -5.3333, 9.525)
chamfer "Chamfer2" distance 10 distance2 8 1 edges at (-15, -1.5, -9.525) measured on face at (-1.3333, -5.3333, -9.525)
fillet "Fillet1" radius 2 4 edges at (-5, -1.5, -9.525) (-15, -1.5, -1.525) (-15, -1.5, 1.525) (-5, -1.5, 9.525)
fillet "Fillet1" radius 5 2 edges at (-2, -13, -9.525) (-2, -13, 9.525)
properties part number "X-Axis_Z_Endstop_Bracket_LM3047" material "ABS Plastic"
